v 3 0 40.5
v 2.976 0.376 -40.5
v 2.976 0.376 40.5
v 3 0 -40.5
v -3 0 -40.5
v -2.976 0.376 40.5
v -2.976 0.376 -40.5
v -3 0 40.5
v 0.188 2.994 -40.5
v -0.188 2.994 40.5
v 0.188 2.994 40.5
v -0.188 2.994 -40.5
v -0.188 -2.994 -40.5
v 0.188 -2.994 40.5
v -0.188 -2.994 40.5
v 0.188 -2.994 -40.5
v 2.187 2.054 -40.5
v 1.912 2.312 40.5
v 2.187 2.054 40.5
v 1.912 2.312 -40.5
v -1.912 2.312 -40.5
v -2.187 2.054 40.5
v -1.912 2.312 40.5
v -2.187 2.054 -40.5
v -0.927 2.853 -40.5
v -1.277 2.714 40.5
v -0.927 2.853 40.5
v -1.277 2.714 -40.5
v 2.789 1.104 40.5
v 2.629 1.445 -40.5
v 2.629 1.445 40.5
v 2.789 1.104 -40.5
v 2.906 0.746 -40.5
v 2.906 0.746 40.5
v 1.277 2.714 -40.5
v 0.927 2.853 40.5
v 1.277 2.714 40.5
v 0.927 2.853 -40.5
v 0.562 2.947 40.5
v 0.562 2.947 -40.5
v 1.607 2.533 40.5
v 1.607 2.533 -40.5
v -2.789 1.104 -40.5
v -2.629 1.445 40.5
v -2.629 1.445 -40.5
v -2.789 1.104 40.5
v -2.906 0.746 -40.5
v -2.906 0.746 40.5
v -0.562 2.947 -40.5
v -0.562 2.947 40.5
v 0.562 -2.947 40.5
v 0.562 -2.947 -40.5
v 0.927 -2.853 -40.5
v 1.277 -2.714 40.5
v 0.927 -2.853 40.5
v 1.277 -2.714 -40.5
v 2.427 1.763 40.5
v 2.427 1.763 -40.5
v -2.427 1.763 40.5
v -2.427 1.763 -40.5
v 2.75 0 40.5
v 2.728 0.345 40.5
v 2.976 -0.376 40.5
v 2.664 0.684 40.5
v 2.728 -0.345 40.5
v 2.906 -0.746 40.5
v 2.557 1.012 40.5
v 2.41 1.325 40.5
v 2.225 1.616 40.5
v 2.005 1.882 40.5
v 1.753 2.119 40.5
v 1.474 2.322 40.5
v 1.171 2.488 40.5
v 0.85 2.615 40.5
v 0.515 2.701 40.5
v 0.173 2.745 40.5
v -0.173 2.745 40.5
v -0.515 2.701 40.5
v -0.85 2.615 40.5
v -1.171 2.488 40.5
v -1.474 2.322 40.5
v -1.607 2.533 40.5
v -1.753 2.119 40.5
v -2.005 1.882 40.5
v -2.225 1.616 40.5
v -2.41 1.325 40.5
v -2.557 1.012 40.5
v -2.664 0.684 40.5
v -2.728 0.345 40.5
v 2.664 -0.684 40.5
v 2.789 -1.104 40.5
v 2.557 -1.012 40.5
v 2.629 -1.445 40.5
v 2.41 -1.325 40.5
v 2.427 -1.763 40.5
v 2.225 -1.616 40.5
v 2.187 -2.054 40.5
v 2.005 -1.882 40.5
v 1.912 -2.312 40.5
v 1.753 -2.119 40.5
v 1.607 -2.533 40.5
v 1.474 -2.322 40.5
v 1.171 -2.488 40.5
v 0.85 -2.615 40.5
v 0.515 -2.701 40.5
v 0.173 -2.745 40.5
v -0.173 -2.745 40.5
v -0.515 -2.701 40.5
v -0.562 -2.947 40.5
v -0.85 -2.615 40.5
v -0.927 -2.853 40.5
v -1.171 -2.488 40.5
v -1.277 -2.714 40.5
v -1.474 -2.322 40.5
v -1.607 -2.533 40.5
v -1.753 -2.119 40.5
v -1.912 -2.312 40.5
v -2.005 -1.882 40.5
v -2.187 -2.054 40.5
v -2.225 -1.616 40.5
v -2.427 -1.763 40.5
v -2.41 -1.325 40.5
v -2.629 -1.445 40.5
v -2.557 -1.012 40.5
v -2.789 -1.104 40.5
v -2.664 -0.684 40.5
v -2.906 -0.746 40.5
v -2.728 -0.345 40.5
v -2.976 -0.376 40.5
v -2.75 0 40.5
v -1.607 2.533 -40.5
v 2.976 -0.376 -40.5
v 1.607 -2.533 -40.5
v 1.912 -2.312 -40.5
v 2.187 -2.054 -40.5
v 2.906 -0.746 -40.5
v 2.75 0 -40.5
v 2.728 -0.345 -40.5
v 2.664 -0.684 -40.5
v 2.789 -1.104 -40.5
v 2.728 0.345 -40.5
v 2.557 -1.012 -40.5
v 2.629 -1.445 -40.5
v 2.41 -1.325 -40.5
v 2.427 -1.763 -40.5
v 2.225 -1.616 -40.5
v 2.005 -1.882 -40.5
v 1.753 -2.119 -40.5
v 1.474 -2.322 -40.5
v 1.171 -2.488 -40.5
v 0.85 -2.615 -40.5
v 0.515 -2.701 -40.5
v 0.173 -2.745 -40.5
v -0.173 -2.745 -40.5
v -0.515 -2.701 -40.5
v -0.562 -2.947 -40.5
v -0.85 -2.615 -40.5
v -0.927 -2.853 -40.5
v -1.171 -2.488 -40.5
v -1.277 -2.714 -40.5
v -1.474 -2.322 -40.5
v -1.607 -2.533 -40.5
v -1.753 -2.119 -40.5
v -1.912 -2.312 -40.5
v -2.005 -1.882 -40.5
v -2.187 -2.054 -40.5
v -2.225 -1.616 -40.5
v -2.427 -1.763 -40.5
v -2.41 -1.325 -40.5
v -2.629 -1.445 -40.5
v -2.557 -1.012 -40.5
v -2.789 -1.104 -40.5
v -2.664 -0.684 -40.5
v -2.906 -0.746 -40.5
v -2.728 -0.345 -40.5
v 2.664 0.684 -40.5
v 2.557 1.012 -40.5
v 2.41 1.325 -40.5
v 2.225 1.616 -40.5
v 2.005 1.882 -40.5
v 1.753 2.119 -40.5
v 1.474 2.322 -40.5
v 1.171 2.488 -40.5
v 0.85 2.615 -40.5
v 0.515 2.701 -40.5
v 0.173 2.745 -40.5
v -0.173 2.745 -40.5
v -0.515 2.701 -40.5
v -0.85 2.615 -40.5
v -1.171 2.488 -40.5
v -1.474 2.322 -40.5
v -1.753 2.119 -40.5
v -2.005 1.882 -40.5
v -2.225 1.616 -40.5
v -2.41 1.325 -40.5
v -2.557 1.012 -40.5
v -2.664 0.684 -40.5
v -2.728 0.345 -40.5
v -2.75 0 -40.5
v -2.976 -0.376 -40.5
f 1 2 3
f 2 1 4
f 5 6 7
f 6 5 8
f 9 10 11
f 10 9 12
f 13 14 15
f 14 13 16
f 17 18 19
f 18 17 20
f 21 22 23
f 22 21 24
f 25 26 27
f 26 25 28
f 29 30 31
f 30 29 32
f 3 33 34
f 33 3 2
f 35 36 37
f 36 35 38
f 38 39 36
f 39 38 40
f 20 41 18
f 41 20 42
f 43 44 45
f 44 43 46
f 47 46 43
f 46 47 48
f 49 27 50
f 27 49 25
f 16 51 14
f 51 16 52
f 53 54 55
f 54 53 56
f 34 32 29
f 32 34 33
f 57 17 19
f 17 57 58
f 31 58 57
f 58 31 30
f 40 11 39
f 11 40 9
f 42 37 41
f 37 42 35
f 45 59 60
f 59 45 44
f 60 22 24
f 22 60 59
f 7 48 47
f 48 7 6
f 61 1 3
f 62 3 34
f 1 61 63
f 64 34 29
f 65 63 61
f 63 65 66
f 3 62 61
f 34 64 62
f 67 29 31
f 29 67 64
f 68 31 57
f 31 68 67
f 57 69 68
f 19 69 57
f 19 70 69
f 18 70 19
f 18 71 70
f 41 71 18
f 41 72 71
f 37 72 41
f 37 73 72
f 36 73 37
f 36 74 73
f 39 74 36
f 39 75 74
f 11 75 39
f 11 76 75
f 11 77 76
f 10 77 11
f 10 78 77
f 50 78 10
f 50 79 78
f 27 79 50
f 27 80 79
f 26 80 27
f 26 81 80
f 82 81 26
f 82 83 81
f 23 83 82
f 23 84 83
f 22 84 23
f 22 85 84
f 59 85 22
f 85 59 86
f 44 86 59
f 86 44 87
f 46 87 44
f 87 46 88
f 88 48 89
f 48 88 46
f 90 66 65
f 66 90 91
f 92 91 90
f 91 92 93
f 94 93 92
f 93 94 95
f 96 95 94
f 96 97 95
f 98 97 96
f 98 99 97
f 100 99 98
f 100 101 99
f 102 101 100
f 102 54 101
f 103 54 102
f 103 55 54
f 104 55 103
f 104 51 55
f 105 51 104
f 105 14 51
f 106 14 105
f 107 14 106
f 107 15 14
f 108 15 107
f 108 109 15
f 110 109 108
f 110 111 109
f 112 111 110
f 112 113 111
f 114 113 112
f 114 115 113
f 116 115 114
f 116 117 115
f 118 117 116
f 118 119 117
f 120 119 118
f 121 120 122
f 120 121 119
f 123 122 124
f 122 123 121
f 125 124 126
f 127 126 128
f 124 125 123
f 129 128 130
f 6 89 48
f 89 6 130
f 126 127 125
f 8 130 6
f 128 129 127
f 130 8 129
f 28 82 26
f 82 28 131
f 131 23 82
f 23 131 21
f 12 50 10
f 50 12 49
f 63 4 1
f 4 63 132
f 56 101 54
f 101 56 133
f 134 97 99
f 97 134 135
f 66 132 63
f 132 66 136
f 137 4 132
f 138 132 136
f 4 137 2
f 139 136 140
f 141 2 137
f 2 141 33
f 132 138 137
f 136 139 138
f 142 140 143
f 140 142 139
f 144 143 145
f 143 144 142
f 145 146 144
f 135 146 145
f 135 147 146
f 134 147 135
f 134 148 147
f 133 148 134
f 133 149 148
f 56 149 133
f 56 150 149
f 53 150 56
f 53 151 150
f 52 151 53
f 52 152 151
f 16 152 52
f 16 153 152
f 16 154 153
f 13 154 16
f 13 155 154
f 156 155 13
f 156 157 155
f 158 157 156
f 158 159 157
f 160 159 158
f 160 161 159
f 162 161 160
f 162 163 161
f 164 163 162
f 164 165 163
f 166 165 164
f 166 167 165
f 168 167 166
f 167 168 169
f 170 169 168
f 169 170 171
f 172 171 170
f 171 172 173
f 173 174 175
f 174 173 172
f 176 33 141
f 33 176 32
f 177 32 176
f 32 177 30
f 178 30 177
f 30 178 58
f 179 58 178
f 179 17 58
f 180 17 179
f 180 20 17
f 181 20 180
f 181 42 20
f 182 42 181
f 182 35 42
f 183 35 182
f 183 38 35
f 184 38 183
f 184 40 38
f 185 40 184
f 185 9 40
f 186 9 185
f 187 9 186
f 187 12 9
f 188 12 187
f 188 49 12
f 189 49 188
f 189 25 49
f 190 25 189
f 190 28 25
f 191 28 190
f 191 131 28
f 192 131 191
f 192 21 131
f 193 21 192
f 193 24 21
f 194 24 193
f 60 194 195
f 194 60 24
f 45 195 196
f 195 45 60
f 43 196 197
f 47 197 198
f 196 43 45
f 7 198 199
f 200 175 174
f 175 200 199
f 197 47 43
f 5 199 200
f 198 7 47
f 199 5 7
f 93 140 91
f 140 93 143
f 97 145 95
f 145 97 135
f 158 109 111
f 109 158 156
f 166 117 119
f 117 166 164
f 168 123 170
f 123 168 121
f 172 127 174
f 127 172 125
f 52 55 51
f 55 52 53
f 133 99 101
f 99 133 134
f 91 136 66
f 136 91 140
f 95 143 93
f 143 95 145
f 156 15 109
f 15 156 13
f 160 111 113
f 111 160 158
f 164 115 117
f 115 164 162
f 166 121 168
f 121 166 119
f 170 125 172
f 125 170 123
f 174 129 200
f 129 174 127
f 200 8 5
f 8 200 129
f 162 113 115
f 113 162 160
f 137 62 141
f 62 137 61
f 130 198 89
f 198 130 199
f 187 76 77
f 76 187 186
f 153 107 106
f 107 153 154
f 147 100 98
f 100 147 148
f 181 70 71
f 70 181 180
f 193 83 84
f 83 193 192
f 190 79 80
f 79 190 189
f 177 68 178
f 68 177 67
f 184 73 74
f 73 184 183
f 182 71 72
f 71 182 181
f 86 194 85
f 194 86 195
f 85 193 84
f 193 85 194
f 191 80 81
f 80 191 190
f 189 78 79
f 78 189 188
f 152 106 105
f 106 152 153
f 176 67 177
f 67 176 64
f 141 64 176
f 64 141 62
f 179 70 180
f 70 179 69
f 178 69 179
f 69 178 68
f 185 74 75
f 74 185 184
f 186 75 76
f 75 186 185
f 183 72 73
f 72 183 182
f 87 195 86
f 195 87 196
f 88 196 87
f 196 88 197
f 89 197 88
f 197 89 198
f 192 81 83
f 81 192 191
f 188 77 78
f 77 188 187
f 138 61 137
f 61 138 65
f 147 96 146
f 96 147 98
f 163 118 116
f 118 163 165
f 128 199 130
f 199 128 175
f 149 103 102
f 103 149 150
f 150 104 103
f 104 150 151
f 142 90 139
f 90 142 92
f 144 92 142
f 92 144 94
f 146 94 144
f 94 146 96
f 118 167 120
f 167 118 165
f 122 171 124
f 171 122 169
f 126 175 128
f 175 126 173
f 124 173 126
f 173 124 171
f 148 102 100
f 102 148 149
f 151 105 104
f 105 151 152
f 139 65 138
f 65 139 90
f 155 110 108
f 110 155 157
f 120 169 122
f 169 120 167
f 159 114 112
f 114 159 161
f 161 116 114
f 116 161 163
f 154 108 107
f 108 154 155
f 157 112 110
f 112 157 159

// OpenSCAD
$fn = 50;


difference() {
	union() {
		translate(v = [0, 0, -40.5000000000]) {
			cylinder(h = 81, r = 3.0000000000);
		}
	}
	union() {
		translate(v = [0, 0, -100.0000000000]) {
			cylinder(h = 200, r = 2.7500000000);
		}
	}
}
